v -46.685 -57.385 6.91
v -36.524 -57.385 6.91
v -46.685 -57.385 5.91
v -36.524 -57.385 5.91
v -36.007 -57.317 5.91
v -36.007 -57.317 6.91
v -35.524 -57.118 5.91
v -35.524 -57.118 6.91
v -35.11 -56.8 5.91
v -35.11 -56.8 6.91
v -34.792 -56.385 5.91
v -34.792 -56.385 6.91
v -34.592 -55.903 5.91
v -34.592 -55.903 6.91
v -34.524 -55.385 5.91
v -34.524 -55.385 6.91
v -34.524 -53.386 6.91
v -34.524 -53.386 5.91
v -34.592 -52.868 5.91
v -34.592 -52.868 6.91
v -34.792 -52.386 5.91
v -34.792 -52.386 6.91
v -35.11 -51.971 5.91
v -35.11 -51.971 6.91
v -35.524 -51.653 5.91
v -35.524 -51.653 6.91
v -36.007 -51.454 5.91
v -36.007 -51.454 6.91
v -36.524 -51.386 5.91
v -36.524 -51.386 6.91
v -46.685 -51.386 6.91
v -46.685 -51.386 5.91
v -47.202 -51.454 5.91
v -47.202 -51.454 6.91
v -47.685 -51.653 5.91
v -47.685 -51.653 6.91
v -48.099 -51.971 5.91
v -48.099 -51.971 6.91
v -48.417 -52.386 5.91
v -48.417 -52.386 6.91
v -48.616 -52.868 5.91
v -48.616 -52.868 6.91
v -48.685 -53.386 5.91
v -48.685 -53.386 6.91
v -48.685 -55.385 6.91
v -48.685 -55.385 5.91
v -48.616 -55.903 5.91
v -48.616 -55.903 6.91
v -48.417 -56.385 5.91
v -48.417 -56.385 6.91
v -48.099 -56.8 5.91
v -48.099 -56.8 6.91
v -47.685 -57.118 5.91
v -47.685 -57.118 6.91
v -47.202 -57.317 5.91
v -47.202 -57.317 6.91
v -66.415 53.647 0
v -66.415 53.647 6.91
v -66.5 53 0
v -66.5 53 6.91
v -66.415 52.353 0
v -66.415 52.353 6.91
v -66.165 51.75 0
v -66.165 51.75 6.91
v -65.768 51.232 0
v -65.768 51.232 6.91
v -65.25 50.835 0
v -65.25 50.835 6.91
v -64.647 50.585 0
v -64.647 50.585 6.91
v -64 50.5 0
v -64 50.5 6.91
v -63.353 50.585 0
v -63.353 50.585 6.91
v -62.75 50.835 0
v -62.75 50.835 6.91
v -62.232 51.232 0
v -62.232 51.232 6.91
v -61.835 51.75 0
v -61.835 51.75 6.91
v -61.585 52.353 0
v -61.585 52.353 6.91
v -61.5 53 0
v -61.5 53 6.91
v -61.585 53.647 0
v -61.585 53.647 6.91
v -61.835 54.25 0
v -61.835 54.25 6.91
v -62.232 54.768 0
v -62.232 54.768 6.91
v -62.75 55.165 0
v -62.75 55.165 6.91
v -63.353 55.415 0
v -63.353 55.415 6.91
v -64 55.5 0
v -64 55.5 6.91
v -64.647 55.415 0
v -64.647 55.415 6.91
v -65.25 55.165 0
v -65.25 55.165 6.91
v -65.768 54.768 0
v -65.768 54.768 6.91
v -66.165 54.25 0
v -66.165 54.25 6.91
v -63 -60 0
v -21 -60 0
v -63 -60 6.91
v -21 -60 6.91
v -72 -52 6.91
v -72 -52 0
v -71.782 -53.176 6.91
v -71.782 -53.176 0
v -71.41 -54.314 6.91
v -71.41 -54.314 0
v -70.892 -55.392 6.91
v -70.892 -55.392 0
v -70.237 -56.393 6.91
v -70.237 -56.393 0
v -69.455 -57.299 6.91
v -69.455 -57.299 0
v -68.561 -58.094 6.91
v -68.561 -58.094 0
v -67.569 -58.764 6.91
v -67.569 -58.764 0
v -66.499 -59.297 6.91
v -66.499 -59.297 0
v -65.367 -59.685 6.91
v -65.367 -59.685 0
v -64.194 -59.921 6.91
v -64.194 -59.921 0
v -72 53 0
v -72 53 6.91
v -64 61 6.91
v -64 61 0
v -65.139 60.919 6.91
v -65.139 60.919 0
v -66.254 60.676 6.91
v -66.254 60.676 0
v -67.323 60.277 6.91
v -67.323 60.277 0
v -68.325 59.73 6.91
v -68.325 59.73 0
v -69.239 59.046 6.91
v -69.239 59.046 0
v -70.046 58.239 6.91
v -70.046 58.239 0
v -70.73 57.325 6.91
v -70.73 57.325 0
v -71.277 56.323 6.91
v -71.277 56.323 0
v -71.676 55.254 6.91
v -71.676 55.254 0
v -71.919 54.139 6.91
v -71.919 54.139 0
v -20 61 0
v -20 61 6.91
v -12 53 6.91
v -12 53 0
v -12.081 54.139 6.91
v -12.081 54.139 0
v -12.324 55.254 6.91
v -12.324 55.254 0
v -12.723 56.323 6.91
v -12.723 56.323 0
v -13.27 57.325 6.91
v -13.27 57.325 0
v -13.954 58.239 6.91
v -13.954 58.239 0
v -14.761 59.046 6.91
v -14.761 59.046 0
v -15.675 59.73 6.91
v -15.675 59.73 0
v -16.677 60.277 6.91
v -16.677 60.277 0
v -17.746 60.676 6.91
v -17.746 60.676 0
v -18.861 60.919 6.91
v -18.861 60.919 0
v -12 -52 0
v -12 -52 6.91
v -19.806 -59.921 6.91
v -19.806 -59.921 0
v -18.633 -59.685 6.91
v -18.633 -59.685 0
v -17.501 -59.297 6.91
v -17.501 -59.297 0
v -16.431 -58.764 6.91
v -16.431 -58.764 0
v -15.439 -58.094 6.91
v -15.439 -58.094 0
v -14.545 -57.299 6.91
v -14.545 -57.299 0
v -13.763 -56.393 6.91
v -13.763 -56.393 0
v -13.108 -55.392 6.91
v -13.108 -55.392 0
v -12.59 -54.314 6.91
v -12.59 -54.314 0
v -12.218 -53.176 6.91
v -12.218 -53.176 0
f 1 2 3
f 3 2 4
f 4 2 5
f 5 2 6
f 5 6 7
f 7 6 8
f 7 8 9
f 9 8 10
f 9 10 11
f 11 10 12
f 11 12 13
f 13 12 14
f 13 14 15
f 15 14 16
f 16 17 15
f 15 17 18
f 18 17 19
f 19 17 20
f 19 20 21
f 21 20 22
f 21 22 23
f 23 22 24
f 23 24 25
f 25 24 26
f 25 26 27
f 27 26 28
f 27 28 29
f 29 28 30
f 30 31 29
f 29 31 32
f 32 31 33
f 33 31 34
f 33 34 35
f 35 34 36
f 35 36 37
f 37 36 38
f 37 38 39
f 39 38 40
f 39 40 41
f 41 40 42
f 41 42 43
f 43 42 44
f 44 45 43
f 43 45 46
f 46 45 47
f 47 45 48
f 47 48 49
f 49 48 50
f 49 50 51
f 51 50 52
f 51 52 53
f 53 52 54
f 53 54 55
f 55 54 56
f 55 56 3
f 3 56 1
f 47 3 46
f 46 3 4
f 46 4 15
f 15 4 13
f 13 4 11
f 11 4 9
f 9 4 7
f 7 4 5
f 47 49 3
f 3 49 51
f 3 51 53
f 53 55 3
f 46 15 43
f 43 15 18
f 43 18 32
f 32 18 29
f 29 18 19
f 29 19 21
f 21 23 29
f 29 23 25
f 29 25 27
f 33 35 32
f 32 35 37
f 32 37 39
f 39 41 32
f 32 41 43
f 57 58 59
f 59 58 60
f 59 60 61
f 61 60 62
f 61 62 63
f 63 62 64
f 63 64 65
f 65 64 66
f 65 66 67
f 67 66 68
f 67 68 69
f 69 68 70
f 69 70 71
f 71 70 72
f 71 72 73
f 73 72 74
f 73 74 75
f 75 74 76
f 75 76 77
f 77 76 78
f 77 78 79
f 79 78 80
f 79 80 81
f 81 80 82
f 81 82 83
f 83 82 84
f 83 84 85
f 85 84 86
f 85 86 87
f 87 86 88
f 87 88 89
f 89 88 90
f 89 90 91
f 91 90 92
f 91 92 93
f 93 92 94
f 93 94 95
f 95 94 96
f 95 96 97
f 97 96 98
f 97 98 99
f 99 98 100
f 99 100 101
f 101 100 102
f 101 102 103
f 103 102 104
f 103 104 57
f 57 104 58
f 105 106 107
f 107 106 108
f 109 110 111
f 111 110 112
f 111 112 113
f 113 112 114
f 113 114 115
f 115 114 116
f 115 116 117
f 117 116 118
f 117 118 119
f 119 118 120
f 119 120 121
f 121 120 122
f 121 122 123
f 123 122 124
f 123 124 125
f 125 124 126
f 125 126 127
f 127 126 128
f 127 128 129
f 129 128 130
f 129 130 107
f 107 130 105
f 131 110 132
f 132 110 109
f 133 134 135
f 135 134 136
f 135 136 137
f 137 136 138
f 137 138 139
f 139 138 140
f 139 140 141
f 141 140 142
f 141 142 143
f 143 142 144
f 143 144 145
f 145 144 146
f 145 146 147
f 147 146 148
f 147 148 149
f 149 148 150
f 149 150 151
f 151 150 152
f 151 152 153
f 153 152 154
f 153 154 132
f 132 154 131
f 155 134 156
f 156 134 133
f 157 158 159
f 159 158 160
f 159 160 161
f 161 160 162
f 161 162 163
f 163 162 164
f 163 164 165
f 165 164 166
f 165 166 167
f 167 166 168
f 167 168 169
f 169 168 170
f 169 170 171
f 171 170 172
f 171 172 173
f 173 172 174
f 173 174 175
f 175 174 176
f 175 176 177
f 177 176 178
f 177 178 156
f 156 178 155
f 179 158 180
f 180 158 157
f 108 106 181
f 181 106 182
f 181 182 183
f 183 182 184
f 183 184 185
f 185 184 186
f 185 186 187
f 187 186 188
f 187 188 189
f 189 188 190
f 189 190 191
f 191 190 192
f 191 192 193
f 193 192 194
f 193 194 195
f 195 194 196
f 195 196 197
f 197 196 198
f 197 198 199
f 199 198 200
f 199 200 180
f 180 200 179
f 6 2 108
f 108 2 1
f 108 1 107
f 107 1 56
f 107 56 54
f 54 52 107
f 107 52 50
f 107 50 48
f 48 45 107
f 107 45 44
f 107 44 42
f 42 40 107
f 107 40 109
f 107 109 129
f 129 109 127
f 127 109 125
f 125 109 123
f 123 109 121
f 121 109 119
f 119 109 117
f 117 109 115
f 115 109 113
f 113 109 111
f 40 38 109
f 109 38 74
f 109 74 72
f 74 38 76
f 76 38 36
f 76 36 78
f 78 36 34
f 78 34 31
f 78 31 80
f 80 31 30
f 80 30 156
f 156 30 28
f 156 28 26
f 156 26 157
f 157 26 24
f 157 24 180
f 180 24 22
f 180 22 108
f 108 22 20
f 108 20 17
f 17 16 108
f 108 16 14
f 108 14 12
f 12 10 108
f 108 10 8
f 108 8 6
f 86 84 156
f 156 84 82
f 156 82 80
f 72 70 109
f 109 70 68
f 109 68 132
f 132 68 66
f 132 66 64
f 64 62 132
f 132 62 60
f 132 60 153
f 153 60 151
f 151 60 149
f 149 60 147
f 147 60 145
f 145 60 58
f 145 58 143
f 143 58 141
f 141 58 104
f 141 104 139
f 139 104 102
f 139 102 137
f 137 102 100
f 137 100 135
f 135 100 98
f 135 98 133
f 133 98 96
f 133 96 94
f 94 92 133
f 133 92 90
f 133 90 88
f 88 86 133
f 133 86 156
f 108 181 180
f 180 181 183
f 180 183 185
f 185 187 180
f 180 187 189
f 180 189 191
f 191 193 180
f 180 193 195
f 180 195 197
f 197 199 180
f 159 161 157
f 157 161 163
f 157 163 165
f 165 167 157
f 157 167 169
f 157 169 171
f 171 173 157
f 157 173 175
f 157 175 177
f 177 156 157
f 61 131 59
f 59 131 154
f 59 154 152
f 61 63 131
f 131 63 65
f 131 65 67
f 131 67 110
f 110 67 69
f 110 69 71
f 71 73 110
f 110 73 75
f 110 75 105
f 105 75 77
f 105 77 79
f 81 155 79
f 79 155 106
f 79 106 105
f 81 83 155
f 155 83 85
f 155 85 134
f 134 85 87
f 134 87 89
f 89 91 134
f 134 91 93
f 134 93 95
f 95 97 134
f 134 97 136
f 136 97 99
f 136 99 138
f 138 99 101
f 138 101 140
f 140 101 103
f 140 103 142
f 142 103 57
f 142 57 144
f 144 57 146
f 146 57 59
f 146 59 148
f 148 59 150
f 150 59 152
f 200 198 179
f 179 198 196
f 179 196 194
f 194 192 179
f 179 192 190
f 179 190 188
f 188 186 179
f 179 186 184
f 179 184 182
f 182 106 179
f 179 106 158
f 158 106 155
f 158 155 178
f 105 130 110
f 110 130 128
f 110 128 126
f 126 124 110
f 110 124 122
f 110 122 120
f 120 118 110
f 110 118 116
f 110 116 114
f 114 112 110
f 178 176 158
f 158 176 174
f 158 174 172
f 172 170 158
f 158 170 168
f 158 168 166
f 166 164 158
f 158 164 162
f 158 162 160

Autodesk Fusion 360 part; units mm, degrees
sketch "phone" plane through (0, 0, 0) normal (0, 0, 1) x (1, 0, 0)
  line L0 (-42, -60) -> (-21, -60)
  arc A0 (-21, -60) -> (-12, -52) centre (-21, -50.9375) ccw
  line L1 (-12, -52) -> (-12, 53)
  arc A1 (-12, 53) -> (-20, 61) centre (-20, 53) ccw
  line L2 (-20, 61) -> (-42, 61)
  line L3 (-64, 61) -> (-42, 61)
  arc A2 (-64, 61) -> (-72, 53) centre (-64, 53) ccw
  line L4 (-72, -52) -> (-72, 53)
  arc A3 (-72, -52) -> (-63, -60) centre (-63, -50.9375) ccw
  line L5 (-42, -60) -> (-63, -60)
extrude "Extrude1" add sketch "phone" along normal blind 6.91
hole "Hole1" at (-64, 53, 6.91) direction (0, 0, -1) diameter 5 depth 40 tip angle 118
sketch "button" plane through (0, 0, 6.91) normal (0, 0, 1) x (-1, 0, 0)
  circle A0 centre (64, -53) radius 2.5
  arc A1 (21, 60) -> (12, 52) centre (21, 50.9375) ccw
  line L0 (12, 52) -> (12, -53)
  arc A2 (12, -53) -> (20, -61) centre (20, -53) ccw
  line L1 (20, -61) -> (64, -61)
  arc A3 (64, -61) -> (72, -53) centre (64, -53) ccw
  line L2 (72, -53) -> (72, 52)
  arc A4 (72, 52) -> (63, 60) centre (63, 50.9375) ccw
  line L3 (63, 60) -> (21, 60)
  line L4 (46.6846, 51.3855) -> (36.5241, 51.3855)
  line L5 (34.5241, 53.3855) -> (34.5241, 55.3855)
  line L6 (36.5241, 57.3855) -> (46.6846, 57.3855)
  line L7 (48.6846, 55.3855) -> (48.6846, 53.3855)
  arc A5 (46.6846, 51.3855) -> (48.6846, 53.3855) centre (46.6846, 53.3855) ccw
  arc A6 (48.6846, 55.3855) -> (46.6846, 57.3855) centre (46.6846, 55.3855) ccw
  arc A7 (34.5241, 53.3855) -> (36.5241, 51.3855) centre (36.5241, 53.3855) ccw
  arc A8 (36.5241, 57.3855) -> (34.5241, 55.3855) centre (36.5241, 55.3855) ccw
  dimension "d6" = 2
extrude "Extrude2" cut sketch "button" against normal blind 1 contours L4 L5 L6 L7 A5 A6 A7 A8
